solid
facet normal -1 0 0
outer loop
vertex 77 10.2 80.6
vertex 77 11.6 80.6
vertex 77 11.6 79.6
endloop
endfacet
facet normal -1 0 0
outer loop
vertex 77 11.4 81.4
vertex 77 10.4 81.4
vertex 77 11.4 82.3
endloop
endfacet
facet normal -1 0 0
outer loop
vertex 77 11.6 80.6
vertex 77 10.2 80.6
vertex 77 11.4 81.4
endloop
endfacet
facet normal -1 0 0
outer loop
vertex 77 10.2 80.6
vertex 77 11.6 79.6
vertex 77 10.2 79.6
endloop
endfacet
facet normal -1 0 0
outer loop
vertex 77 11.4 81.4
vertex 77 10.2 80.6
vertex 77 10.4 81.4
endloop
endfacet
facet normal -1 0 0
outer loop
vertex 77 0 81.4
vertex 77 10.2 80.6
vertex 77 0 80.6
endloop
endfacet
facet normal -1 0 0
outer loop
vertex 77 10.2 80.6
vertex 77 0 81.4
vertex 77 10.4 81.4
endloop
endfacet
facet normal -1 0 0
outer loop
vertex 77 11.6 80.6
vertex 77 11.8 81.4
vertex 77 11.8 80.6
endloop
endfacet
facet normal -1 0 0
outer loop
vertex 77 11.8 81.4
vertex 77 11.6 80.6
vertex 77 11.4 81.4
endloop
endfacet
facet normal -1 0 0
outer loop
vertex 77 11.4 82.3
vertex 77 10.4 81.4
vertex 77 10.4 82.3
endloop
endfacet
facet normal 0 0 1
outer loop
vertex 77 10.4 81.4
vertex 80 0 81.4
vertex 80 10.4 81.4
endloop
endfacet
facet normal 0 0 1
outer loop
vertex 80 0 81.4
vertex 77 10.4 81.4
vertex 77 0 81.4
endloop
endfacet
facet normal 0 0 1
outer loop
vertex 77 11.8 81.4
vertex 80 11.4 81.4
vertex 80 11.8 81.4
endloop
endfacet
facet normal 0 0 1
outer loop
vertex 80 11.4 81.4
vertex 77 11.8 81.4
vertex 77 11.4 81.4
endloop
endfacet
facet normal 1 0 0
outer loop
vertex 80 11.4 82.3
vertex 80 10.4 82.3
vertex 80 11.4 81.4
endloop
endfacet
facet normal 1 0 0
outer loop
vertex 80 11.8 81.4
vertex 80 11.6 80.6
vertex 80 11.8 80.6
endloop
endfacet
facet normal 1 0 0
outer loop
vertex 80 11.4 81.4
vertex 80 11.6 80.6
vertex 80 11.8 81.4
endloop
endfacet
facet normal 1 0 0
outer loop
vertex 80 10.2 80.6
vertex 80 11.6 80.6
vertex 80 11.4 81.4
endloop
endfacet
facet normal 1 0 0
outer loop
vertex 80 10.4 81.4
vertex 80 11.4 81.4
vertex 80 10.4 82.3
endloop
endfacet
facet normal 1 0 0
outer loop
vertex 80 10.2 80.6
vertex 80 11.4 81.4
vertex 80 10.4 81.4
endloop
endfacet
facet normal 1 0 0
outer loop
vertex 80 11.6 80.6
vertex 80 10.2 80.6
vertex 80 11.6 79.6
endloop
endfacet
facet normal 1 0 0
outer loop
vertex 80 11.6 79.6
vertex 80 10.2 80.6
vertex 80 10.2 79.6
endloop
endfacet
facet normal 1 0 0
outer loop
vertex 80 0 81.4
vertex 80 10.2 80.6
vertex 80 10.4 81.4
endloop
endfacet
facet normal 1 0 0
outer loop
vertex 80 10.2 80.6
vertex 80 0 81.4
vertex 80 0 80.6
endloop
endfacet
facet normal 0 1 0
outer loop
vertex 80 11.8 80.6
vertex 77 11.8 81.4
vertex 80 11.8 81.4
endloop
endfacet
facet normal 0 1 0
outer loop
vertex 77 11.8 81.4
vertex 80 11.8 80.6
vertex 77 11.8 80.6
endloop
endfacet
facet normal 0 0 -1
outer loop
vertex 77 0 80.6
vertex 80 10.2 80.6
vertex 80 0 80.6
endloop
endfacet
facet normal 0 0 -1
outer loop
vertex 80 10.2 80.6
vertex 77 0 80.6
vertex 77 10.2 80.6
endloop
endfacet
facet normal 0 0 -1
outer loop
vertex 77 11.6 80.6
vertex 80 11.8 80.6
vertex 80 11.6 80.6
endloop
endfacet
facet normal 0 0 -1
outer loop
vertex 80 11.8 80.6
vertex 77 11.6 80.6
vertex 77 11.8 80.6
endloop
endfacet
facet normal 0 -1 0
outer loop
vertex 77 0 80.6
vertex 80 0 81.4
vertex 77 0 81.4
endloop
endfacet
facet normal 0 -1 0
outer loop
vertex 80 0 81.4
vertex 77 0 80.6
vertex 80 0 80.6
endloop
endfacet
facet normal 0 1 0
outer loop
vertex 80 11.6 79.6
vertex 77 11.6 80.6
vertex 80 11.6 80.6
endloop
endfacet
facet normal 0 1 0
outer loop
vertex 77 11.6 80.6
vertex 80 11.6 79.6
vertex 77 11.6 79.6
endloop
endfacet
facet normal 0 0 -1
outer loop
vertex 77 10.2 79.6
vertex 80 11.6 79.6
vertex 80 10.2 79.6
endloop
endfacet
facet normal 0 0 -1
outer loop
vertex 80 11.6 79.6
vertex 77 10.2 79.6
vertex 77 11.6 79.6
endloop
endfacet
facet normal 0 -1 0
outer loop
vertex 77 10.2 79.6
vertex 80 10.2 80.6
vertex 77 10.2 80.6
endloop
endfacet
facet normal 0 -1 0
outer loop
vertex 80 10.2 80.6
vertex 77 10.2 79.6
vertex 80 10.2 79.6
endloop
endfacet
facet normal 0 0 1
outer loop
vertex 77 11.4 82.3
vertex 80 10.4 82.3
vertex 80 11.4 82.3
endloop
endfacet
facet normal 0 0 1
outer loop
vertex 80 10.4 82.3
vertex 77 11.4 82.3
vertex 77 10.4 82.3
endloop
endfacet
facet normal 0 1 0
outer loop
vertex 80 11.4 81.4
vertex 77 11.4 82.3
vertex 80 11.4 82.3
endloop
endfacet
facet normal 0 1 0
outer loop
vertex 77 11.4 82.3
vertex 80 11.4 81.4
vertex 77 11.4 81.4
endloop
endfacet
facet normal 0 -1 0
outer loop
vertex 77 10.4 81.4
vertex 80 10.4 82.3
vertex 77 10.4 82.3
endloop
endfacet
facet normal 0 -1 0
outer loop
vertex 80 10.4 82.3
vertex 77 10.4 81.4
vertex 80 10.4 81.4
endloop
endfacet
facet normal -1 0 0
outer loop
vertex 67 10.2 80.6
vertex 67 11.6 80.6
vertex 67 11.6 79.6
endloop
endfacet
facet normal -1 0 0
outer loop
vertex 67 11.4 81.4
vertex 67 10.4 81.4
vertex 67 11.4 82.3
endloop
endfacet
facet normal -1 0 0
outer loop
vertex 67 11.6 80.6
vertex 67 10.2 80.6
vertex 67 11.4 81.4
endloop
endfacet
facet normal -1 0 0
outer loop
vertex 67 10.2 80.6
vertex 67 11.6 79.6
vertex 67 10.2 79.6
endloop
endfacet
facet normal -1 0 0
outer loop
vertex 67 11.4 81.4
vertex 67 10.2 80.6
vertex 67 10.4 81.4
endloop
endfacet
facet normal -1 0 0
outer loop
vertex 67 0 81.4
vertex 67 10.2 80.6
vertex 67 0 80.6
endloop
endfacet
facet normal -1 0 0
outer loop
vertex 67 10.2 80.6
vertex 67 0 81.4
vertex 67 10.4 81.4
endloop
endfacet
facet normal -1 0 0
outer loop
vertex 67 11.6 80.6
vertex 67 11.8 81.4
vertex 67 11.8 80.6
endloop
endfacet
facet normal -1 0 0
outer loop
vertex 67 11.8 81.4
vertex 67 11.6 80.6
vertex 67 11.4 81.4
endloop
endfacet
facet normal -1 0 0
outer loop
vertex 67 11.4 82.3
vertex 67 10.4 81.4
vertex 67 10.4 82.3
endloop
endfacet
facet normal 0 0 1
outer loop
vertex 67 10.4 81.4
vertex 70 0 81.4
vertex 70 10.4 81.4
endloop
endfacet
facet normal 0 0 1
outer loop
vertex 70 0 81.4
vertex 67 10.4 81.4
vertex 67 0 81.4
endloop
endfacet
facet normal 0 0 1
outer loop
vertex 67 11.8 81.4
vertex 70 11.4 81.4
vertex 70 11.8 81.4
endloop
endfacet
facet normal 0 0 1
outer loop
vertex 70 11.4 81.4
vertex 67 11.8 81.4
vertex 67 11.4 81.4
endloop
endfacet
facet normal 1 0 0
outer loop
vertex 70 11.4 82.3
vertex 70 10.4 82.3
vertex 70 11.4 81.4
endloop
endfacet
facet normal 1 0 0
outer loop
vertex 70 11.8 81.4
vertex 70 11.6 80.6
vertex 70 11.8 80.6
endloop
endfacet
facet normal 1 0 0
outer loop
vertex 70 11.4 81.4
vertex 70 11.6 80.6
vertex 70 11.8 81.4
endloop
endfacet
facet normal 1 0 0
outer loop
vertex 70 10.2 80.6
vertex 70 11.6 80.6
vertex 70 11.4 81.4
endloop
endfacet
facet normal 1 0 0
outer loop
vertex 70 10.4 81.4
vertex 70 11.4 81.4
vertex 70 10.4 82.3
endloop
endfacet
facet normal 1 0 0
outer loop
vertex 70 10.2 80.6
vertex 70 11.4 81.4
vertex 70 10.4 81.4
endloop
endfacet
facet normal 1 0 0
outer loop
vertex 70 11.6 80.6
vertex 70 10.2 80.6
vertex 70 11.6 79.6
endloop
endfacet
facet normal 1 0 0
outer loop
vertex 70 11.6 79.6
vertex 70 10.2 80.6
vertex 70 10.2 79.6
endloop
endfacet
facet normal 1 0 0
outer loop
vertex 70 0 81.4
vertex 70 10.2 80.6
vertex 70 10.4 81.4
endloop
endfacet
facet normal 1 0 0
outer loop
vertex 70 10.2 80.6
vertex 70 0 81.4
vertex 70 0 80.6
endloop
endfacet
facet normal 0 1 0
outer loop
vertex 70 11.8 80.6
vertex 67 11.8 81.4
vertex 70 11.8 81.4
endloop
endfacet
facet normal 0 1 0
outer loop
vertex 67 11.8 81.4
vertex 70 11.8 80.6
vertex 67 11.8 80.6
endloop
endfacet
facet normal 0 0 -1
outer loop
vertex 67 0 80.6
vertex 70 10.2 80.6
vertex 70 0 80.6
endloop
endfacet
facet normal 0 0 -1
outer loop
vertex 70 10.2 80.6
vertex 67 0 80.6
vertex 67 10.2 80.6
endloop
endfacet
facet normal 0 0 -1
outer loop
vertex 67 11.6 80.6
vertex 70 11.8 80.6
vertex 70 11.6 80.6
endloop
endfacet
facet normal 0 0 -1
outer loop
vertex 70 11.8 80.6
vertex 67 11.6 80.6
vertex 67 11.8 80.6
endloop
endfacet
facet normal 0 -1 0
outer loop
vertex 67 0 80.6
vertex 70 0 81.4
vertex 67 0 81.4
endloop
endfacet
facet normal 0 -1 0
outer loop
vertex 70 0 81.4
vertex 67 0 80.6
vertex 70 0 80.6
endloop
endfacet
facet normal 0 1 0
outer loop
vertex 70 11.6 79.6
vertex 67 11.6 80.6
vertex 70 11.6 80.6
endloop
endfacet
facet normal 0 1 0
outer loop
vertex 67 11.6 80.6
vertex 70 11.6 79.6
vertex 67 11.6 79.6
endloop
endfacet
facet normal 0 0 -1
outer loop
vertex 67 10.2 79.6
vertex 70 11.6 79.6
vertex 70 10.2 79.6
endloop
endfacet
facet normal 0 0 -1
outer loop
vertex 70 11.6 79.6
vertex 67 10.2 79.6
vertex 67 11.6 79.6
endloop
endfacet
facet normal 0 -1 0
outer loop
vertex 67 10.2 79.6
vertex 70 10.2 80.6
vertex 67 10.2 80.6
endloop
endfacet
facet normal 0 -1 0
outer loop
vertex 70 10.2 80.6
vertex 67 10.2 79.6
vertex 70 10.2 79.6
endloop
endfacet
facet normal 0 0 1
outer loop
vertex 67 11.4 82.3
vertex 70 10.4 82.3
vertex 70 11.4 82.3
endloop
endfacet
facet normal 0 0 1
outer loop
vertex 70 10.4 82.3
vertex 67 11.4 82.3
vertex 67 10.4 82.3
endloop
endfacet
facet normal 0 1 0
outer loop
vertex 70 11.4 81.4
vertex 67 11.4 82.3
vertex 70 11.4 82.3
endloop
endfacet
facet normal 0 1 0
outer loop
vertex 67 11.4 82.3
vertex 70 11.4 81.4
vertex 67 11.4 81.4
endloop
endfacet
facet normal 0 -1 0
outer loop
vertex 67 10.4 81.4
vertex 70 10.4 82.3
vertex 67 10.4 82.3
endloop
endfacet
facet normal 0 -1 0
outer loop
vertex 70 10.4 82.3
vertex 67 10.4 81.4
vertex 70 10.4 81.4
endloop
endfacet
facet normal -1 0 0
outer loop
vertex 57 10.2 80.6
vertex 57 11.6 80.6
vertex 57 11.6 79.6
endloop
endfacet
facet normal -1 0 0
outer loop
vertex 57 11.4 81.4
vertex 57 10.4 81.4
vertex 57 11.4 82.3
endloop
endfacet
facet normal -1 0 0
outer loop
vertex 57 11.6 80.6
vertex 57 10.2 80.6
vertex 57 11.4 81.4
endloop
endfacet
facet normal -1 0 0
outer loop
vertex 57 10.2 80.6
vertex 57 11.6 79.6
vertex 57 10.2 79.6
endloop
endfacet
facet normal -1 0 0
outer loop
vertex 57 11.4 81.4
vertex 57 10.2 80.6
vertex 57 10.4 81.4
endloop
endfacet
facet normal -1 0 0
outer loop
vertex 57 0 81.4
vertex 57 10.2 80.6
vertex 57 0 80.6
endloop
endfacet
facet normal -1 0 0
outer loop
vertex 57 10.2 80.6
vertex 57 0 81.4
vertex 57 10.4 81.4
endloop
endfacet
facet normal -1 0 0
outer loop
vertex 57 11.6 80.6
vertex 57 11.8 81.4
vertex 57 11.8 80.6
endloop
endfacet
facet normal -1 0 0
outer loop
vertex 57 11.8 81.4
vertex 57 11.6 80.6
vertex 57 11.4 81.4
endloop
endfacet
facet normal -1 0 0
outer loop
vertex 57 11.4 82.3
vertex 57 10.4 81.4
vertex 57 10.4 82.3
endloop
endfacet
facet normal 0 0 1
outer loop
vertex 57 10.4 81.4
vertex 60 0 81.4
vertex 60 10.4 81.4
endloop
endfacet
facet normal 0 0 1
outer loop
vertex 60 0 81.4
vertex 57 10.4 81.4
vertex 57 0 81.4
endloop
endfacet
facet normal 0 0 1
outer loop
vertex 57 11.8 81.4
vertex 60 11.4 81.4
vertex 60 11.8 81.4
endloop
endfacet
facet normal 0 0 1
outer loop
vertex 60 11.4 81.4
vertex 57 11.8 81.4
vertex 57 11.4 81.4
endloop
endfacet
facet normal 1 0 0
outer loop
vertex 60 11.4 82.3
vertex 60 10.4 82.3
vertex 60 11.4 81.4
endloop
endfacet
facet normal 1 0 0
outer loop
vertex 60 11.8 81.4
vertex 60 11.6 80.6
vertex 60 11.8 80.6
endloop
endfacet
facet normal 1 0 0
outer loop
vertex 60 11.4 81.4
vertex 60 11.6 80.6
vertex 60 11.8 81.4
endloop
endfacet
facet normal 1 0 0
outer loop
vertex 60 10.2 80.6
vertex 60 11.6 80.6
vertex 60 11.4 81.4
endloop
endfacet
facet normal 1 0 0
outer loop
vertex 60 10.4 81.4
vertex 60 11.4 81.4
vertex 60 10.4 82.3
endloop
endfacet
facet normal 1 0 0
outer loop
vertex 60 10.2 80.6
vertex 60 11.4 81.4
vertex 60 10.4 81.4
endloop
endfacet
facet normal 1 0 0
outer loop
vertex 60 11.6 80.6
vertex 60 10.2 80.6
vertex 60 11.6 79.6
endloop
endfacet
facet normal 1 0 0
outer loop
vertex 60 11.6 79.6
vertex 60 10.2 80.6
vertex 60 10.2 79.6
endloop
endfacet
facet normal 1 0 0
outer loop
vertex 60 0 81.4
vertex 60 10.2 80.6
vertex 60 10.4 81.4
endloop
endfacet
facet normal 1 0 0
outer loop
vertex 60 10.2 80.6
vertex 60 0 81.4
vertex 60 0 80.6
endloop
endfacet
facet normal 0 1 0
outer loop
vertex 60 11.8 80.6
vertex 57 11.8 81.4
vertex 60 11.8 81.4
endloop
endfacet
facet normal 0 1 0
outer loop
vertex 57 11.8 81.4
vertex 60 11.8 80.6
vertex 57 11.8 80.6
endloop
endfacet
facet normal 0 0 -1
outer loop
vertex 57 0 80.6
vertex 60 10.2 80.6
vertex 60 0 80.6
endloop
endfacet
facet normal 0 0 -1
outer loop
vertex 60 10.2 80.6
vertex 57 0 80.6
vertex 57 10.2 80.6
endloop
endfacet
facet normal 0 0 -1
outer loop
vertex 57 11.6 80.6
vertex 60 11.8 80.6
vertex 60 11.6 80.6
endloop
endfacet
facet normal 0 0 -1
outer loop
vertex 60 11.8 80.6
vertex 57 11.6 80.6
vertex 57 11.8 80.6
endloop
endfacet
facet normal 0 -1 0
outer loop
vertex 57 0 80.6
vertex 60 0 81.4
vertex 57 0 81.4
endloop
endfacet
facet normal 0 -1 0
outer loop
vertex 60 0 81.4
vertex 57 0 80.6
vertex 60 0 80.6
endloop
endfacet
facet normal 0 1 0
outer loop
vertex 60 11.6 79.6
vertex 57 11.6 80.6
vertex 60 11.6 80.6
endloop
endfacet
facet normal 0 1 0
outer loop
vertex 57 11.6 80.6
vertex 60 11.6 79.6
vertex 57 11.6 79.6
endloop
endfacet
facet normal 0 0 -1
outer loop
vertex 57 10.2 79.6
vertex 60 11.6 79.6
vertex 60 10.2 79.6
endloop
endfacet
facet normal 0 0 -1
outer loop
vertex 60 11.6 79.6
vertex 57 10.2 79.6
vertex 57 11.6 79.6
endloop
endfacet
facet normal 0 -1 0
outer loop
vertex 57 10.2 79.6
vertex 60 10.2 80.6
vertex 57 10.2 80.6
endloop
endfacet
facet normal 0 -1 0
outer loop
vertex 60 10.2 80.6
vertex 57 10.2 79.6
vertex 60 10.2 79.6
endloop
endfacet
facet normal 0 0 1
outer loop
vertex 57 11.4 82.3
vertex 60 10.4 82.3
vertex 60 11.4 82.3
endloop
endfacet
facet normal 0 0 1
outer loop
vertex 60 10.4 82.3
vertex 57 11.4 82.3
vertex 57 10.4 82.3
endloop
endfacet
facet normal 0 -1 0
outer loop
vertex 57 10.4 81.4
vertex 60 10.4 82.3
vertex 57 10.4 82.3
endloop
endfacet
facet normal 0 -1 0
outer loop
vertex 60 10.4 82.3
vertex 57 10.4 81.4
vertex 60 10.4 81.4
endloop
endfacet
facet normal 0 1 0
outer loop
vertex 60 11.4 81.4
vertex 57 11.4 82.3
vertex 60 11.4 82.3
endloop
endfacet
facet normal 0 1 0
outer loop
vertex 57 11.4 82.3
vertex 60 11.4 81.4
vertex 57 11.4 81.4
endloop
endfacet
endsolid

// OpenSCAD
// file: D:/Projects/assembly-workshop/outputs/Screen_Pi_Hue_SCR5-H_2026-10-30/checks/geometry.scad
// SCR5-G; mm; FRONT view: X right, Z up, Y into rack. Glass/plate front Y=0.
// Measured values: work/screen-5in/Dimensions.md. Physical fit/strength UNKNOWN.
part="plate";
DROP=0.45; // coupon winner can be substituted here; all three pins use this DROP
LIP=0.8; LIP_ON=true;
LIP_EDGES=[true,true,false,false]; // left,right,bottom,top; Brian: side lips only, cosmetic
FRAME_STEP=1.5; // measured glass-edge inset to metal LCD frame, left/right only
SHIM=0; // moves rear frame seat and plate-boss mating face back
$fn=48;
GCX=33; GCZ=41.5; PW=252; PH=88.8; PT=4;
GW=120.7; GH=77.2; CLEAR=0.2; WW=GW+2*CLEAR; WH=GH+2*CLEAR;
SEAT=13.3+SHIM; FT=3;
SO=[56.45,34]; BTN_X=[45.5,35.5,25.5];
PCB_TOP=38; GAP=0.10; LEAF_T=0.8;
HOLE=[3.4,40.3,44.7];
BX=[GCX-68,GCX+68]; BZ=[10,72];
// DSI connector X extent is unmeasured: conservative assumed 8 mm inward from PCB edge.
DSI=[GCX-60.5,9.1,GCZ-38+30,8,5.25,21];
module xz(y,d){translate([0,y+d,0])rotate([90,0,0])linear_extrude(d)children();}
// rr/rack_slots copied from SCR5-F; same exact slot centres, outline shifted -0.05 Z to centre 44.4.
module rr(w,h,r){hull()for(x=[-w/2+r,w/2-r],z=[-h/2+r,h/2-r])translate([x,z])circle(r=r);}
module rack_slots(){for(x=[-118.2625,118.2625],z=[6.323,38.127,50.773,82.577])translate([x,z])hull()for(dx=[-1.5,1.5])translate([dx,0])circle(d=7);}
module cyl_y(x,y,z,d,h){translate([x,y,z])rotate([-90,0,0])cylinder(d=d,h=h);}
module window_cut(){
  xz(-0.02,4.04)translate([GCX,GCZ])square([WW,WH],center=true);
  // 0.3 x 45-degree chamfer, square corners, front only.
  translate([GCX,0.3,GCZ])rotate([90,0,0])
    linear_extrude(height=0.3,scale=[(WW+0.6)/WW,(WH+0.6)/WH])square([WW,WH],center=true);
}
module lips(){
  // Cosmetic side ledges only; rear frame/standoffs set depth and retain the screen.
  if(LIP_ON)for(i=[0:3])if(LIP_EDGES[i]){
    if(i<2)translate([GCX+(i==0?-WW/2:WW/2-LIP),2.5,GCZ-GH/2+4])cube([LIP,0.8,GH-8]);
    else translate([GCX-GW/2+4,2.5,GCZ+(i==2?-WH/2:WH/2-LIP)])cube([GW-8,0.8,LIP]);
  }
}
// Leaf/nub/bump geometry copied from SCR5-WP-A, translated to this glass centre.
module leaves(){for(x=BTN_X)translate([GCX+x-1.5,0,GCZ]){
  translate([0,0,PCB_TOP+GAP+0.9+0.1])cube([3,11.8,LEAF_T]);
  translate([0,10.2,PCB_TOP+GAP])cube([3,1.4,1.0+LEAF_T/2]);
  translate([0,10.4,PCB_TOP+GAP+1.0+LEAF_T])cube([3,1.0,0.9]);
}}
module plate(){difference(){union(){
  difference(){xz(0,PT)translate([0,PH/2])rr(PW,PH,2.5);window_cut();}
  for(x=BX,z=BZ)cyl_y(x,3.9,z,8,SEAT-3.9);
  leaves(); lips();
 }
 xz(-0.02,4.04)rack_slots();
 for(x=BTN_X)translate([GCX+x-HOLE[0]/2,-0.02,GCZ+HOLE[1]])cube([HOLE[0],SEAT+FT+0.04,HOLE[2]-HOLE[1]]);
 // Printed-in screw pilots (no heat-set OD assumption): nominal M2.5, fit UNKNOWN.
 for(x=BX,z=BZ)cyl_y(x,SEAT-6,z,2.1,6.02);
 // Rear engraving, 0.5 deep, left field.
 xz(3.5,0.52)translate([-75,40])mirror([1,0])text("SCR5-G",size=6,halign="center",font="Liberation Sans:style=Bold");
}}
module frame_blank(){
  // C-shaped perimeter; no material across the board centre / touch FPC.
  xz(SEAT,FT)translate([GCX,GCZ])difference(){square([132,76],center=true);square([116,60],center=true);}
  for(sx=[-1,1],sz=[-1,1])cyl_y(GCX+sx*SO[0],SEAT,GCZ+sz*SO[1],9,FT);
  for(x=BX,z=BZ)hull(){cyl_y(x,SEAT,z,8,FT);cyl_y(GCX+(x<GCX?-62:62),SEAT,z,8,FT);}
}
module dsi_keepout(){translate([DSI[0]-3,DSI[1]-3,DSI[2]-3])cube([DSI[3]+6,DSI[4]+6,DSI[5]+6]);}
module ribbon_route(){
  // Open left/up corridor 18 mm wide; extends past top of plate.
  translate([GCX-84,6.1,GCZ-11])cube([18,24,65]);
  translate([GCX-84,6.1,GCZ-11])cube([32,24,27]);
}
module frame(){difference(){frame_blank();dsi_keepout();ribbon_route();
 for(sx=[-1,1],sz=[-1,1])cyl_y(GCX+sx*SO[0],SEAT-0.02,GCZ+sz*SO[1],2.8,FT+0.04);
 for(x=BX,z=BZ)cyl_y(x,SEAT-0.02,z,2.8,FT+0.04);
}}
// Pin polygon/cap/notch/dot design copied unchanged from SCR5-WP-A.
module pin(d,dots){s=2*d+0.5;difference(){union(){
 translate([-1.5,0,0])rotate([90,0,90])linear_extrude(3)polygon([
 [-s-0.02,40.5],[10.2,40.5],[10.2,41.0],[11.5,41.0],[11.5+2*d,41.0-d],[15,41.0-d],[15,44.5],[-s-0.02,44.5]]);
 translate([-2.5,-s-1.5,39.6])cube([5,1.5,5.8]);
 }for(i=[0:dots-1])translate([(i-(dots-1)/2)*1.4,-s-1.5-0.01,43.5])rotate([-90,0,0])cylinder(d=0.9,h=0.4);}}
module placed_pin(i){translate([GCX+BTN_X[i],0,GCZ])pin(DROP,i+1);}
// Measured layers: cover glass 0.9 + second glass 1.6, metal frame 3.0,
// open gap 2.0, PCB 1.6. Metal frame inset ~1.5 at LEFT/RIGHT only.
// PCB centred under glass and full metal-frame top/bottom extent remain UNKNOWN.
module glass(){translate([GCX-GW/2,0,GCZ-GH/2])cube([GW,2.5,GH]);}
module lcd(){
  translate([GCX-GW/2+FRAME_STEP,2.5,GCZ-GH/2])cube([GW-2*FRAME_STEP,3.0,GH]);
}
module pcb(){translate([GCX-60.5,7.5,GCZ-38])cube([121,1.6,76]);}
module standoffs(){for(sx=[-1,1],sz=[-1,1])difference(){cyl_y(GCX+sx*SO[0],9.1,GCZ+sz*SO[1],5.5,4.2);cyl_y(GCX+sx*SO[0],9.08,GCZ+sz*SO[1],2.5,4.24);}}
module buttons(){for(x=BTN_X){
 translate([GCX+x-3.5,9.1,GCZ+38-3.4])cube([7,3.6,2.4]);
 translate([GCX+x-1.5,9.1,GCZ+37])cube([3,3.6,1]);
}}
module dsi(){translate([DSI[0],DSI[1],DSI[2]])cube([DSI[3],DSI[4],DSI[5]]);}
module touch(){translate([GCX-10,9.1,GCZ-5])cube([20,2,10]);} // lateral extent unmeasured
module dummy(){glass();lcd();pcb();standoffs();buttons();dsi();touch();}
module assembly(){color("gray")plate();color("orange")frame();for(i=[0:2])color("cyan")placed_pin(i);color([0.2,0.3,0.4,0.4])dummy();}
// main file
include <D:/Projects/assembly-workshop/outputs/Screen_Pi_Hue_SCR5-H_2026-10-30/checks/geometry.scad>
leaves();
